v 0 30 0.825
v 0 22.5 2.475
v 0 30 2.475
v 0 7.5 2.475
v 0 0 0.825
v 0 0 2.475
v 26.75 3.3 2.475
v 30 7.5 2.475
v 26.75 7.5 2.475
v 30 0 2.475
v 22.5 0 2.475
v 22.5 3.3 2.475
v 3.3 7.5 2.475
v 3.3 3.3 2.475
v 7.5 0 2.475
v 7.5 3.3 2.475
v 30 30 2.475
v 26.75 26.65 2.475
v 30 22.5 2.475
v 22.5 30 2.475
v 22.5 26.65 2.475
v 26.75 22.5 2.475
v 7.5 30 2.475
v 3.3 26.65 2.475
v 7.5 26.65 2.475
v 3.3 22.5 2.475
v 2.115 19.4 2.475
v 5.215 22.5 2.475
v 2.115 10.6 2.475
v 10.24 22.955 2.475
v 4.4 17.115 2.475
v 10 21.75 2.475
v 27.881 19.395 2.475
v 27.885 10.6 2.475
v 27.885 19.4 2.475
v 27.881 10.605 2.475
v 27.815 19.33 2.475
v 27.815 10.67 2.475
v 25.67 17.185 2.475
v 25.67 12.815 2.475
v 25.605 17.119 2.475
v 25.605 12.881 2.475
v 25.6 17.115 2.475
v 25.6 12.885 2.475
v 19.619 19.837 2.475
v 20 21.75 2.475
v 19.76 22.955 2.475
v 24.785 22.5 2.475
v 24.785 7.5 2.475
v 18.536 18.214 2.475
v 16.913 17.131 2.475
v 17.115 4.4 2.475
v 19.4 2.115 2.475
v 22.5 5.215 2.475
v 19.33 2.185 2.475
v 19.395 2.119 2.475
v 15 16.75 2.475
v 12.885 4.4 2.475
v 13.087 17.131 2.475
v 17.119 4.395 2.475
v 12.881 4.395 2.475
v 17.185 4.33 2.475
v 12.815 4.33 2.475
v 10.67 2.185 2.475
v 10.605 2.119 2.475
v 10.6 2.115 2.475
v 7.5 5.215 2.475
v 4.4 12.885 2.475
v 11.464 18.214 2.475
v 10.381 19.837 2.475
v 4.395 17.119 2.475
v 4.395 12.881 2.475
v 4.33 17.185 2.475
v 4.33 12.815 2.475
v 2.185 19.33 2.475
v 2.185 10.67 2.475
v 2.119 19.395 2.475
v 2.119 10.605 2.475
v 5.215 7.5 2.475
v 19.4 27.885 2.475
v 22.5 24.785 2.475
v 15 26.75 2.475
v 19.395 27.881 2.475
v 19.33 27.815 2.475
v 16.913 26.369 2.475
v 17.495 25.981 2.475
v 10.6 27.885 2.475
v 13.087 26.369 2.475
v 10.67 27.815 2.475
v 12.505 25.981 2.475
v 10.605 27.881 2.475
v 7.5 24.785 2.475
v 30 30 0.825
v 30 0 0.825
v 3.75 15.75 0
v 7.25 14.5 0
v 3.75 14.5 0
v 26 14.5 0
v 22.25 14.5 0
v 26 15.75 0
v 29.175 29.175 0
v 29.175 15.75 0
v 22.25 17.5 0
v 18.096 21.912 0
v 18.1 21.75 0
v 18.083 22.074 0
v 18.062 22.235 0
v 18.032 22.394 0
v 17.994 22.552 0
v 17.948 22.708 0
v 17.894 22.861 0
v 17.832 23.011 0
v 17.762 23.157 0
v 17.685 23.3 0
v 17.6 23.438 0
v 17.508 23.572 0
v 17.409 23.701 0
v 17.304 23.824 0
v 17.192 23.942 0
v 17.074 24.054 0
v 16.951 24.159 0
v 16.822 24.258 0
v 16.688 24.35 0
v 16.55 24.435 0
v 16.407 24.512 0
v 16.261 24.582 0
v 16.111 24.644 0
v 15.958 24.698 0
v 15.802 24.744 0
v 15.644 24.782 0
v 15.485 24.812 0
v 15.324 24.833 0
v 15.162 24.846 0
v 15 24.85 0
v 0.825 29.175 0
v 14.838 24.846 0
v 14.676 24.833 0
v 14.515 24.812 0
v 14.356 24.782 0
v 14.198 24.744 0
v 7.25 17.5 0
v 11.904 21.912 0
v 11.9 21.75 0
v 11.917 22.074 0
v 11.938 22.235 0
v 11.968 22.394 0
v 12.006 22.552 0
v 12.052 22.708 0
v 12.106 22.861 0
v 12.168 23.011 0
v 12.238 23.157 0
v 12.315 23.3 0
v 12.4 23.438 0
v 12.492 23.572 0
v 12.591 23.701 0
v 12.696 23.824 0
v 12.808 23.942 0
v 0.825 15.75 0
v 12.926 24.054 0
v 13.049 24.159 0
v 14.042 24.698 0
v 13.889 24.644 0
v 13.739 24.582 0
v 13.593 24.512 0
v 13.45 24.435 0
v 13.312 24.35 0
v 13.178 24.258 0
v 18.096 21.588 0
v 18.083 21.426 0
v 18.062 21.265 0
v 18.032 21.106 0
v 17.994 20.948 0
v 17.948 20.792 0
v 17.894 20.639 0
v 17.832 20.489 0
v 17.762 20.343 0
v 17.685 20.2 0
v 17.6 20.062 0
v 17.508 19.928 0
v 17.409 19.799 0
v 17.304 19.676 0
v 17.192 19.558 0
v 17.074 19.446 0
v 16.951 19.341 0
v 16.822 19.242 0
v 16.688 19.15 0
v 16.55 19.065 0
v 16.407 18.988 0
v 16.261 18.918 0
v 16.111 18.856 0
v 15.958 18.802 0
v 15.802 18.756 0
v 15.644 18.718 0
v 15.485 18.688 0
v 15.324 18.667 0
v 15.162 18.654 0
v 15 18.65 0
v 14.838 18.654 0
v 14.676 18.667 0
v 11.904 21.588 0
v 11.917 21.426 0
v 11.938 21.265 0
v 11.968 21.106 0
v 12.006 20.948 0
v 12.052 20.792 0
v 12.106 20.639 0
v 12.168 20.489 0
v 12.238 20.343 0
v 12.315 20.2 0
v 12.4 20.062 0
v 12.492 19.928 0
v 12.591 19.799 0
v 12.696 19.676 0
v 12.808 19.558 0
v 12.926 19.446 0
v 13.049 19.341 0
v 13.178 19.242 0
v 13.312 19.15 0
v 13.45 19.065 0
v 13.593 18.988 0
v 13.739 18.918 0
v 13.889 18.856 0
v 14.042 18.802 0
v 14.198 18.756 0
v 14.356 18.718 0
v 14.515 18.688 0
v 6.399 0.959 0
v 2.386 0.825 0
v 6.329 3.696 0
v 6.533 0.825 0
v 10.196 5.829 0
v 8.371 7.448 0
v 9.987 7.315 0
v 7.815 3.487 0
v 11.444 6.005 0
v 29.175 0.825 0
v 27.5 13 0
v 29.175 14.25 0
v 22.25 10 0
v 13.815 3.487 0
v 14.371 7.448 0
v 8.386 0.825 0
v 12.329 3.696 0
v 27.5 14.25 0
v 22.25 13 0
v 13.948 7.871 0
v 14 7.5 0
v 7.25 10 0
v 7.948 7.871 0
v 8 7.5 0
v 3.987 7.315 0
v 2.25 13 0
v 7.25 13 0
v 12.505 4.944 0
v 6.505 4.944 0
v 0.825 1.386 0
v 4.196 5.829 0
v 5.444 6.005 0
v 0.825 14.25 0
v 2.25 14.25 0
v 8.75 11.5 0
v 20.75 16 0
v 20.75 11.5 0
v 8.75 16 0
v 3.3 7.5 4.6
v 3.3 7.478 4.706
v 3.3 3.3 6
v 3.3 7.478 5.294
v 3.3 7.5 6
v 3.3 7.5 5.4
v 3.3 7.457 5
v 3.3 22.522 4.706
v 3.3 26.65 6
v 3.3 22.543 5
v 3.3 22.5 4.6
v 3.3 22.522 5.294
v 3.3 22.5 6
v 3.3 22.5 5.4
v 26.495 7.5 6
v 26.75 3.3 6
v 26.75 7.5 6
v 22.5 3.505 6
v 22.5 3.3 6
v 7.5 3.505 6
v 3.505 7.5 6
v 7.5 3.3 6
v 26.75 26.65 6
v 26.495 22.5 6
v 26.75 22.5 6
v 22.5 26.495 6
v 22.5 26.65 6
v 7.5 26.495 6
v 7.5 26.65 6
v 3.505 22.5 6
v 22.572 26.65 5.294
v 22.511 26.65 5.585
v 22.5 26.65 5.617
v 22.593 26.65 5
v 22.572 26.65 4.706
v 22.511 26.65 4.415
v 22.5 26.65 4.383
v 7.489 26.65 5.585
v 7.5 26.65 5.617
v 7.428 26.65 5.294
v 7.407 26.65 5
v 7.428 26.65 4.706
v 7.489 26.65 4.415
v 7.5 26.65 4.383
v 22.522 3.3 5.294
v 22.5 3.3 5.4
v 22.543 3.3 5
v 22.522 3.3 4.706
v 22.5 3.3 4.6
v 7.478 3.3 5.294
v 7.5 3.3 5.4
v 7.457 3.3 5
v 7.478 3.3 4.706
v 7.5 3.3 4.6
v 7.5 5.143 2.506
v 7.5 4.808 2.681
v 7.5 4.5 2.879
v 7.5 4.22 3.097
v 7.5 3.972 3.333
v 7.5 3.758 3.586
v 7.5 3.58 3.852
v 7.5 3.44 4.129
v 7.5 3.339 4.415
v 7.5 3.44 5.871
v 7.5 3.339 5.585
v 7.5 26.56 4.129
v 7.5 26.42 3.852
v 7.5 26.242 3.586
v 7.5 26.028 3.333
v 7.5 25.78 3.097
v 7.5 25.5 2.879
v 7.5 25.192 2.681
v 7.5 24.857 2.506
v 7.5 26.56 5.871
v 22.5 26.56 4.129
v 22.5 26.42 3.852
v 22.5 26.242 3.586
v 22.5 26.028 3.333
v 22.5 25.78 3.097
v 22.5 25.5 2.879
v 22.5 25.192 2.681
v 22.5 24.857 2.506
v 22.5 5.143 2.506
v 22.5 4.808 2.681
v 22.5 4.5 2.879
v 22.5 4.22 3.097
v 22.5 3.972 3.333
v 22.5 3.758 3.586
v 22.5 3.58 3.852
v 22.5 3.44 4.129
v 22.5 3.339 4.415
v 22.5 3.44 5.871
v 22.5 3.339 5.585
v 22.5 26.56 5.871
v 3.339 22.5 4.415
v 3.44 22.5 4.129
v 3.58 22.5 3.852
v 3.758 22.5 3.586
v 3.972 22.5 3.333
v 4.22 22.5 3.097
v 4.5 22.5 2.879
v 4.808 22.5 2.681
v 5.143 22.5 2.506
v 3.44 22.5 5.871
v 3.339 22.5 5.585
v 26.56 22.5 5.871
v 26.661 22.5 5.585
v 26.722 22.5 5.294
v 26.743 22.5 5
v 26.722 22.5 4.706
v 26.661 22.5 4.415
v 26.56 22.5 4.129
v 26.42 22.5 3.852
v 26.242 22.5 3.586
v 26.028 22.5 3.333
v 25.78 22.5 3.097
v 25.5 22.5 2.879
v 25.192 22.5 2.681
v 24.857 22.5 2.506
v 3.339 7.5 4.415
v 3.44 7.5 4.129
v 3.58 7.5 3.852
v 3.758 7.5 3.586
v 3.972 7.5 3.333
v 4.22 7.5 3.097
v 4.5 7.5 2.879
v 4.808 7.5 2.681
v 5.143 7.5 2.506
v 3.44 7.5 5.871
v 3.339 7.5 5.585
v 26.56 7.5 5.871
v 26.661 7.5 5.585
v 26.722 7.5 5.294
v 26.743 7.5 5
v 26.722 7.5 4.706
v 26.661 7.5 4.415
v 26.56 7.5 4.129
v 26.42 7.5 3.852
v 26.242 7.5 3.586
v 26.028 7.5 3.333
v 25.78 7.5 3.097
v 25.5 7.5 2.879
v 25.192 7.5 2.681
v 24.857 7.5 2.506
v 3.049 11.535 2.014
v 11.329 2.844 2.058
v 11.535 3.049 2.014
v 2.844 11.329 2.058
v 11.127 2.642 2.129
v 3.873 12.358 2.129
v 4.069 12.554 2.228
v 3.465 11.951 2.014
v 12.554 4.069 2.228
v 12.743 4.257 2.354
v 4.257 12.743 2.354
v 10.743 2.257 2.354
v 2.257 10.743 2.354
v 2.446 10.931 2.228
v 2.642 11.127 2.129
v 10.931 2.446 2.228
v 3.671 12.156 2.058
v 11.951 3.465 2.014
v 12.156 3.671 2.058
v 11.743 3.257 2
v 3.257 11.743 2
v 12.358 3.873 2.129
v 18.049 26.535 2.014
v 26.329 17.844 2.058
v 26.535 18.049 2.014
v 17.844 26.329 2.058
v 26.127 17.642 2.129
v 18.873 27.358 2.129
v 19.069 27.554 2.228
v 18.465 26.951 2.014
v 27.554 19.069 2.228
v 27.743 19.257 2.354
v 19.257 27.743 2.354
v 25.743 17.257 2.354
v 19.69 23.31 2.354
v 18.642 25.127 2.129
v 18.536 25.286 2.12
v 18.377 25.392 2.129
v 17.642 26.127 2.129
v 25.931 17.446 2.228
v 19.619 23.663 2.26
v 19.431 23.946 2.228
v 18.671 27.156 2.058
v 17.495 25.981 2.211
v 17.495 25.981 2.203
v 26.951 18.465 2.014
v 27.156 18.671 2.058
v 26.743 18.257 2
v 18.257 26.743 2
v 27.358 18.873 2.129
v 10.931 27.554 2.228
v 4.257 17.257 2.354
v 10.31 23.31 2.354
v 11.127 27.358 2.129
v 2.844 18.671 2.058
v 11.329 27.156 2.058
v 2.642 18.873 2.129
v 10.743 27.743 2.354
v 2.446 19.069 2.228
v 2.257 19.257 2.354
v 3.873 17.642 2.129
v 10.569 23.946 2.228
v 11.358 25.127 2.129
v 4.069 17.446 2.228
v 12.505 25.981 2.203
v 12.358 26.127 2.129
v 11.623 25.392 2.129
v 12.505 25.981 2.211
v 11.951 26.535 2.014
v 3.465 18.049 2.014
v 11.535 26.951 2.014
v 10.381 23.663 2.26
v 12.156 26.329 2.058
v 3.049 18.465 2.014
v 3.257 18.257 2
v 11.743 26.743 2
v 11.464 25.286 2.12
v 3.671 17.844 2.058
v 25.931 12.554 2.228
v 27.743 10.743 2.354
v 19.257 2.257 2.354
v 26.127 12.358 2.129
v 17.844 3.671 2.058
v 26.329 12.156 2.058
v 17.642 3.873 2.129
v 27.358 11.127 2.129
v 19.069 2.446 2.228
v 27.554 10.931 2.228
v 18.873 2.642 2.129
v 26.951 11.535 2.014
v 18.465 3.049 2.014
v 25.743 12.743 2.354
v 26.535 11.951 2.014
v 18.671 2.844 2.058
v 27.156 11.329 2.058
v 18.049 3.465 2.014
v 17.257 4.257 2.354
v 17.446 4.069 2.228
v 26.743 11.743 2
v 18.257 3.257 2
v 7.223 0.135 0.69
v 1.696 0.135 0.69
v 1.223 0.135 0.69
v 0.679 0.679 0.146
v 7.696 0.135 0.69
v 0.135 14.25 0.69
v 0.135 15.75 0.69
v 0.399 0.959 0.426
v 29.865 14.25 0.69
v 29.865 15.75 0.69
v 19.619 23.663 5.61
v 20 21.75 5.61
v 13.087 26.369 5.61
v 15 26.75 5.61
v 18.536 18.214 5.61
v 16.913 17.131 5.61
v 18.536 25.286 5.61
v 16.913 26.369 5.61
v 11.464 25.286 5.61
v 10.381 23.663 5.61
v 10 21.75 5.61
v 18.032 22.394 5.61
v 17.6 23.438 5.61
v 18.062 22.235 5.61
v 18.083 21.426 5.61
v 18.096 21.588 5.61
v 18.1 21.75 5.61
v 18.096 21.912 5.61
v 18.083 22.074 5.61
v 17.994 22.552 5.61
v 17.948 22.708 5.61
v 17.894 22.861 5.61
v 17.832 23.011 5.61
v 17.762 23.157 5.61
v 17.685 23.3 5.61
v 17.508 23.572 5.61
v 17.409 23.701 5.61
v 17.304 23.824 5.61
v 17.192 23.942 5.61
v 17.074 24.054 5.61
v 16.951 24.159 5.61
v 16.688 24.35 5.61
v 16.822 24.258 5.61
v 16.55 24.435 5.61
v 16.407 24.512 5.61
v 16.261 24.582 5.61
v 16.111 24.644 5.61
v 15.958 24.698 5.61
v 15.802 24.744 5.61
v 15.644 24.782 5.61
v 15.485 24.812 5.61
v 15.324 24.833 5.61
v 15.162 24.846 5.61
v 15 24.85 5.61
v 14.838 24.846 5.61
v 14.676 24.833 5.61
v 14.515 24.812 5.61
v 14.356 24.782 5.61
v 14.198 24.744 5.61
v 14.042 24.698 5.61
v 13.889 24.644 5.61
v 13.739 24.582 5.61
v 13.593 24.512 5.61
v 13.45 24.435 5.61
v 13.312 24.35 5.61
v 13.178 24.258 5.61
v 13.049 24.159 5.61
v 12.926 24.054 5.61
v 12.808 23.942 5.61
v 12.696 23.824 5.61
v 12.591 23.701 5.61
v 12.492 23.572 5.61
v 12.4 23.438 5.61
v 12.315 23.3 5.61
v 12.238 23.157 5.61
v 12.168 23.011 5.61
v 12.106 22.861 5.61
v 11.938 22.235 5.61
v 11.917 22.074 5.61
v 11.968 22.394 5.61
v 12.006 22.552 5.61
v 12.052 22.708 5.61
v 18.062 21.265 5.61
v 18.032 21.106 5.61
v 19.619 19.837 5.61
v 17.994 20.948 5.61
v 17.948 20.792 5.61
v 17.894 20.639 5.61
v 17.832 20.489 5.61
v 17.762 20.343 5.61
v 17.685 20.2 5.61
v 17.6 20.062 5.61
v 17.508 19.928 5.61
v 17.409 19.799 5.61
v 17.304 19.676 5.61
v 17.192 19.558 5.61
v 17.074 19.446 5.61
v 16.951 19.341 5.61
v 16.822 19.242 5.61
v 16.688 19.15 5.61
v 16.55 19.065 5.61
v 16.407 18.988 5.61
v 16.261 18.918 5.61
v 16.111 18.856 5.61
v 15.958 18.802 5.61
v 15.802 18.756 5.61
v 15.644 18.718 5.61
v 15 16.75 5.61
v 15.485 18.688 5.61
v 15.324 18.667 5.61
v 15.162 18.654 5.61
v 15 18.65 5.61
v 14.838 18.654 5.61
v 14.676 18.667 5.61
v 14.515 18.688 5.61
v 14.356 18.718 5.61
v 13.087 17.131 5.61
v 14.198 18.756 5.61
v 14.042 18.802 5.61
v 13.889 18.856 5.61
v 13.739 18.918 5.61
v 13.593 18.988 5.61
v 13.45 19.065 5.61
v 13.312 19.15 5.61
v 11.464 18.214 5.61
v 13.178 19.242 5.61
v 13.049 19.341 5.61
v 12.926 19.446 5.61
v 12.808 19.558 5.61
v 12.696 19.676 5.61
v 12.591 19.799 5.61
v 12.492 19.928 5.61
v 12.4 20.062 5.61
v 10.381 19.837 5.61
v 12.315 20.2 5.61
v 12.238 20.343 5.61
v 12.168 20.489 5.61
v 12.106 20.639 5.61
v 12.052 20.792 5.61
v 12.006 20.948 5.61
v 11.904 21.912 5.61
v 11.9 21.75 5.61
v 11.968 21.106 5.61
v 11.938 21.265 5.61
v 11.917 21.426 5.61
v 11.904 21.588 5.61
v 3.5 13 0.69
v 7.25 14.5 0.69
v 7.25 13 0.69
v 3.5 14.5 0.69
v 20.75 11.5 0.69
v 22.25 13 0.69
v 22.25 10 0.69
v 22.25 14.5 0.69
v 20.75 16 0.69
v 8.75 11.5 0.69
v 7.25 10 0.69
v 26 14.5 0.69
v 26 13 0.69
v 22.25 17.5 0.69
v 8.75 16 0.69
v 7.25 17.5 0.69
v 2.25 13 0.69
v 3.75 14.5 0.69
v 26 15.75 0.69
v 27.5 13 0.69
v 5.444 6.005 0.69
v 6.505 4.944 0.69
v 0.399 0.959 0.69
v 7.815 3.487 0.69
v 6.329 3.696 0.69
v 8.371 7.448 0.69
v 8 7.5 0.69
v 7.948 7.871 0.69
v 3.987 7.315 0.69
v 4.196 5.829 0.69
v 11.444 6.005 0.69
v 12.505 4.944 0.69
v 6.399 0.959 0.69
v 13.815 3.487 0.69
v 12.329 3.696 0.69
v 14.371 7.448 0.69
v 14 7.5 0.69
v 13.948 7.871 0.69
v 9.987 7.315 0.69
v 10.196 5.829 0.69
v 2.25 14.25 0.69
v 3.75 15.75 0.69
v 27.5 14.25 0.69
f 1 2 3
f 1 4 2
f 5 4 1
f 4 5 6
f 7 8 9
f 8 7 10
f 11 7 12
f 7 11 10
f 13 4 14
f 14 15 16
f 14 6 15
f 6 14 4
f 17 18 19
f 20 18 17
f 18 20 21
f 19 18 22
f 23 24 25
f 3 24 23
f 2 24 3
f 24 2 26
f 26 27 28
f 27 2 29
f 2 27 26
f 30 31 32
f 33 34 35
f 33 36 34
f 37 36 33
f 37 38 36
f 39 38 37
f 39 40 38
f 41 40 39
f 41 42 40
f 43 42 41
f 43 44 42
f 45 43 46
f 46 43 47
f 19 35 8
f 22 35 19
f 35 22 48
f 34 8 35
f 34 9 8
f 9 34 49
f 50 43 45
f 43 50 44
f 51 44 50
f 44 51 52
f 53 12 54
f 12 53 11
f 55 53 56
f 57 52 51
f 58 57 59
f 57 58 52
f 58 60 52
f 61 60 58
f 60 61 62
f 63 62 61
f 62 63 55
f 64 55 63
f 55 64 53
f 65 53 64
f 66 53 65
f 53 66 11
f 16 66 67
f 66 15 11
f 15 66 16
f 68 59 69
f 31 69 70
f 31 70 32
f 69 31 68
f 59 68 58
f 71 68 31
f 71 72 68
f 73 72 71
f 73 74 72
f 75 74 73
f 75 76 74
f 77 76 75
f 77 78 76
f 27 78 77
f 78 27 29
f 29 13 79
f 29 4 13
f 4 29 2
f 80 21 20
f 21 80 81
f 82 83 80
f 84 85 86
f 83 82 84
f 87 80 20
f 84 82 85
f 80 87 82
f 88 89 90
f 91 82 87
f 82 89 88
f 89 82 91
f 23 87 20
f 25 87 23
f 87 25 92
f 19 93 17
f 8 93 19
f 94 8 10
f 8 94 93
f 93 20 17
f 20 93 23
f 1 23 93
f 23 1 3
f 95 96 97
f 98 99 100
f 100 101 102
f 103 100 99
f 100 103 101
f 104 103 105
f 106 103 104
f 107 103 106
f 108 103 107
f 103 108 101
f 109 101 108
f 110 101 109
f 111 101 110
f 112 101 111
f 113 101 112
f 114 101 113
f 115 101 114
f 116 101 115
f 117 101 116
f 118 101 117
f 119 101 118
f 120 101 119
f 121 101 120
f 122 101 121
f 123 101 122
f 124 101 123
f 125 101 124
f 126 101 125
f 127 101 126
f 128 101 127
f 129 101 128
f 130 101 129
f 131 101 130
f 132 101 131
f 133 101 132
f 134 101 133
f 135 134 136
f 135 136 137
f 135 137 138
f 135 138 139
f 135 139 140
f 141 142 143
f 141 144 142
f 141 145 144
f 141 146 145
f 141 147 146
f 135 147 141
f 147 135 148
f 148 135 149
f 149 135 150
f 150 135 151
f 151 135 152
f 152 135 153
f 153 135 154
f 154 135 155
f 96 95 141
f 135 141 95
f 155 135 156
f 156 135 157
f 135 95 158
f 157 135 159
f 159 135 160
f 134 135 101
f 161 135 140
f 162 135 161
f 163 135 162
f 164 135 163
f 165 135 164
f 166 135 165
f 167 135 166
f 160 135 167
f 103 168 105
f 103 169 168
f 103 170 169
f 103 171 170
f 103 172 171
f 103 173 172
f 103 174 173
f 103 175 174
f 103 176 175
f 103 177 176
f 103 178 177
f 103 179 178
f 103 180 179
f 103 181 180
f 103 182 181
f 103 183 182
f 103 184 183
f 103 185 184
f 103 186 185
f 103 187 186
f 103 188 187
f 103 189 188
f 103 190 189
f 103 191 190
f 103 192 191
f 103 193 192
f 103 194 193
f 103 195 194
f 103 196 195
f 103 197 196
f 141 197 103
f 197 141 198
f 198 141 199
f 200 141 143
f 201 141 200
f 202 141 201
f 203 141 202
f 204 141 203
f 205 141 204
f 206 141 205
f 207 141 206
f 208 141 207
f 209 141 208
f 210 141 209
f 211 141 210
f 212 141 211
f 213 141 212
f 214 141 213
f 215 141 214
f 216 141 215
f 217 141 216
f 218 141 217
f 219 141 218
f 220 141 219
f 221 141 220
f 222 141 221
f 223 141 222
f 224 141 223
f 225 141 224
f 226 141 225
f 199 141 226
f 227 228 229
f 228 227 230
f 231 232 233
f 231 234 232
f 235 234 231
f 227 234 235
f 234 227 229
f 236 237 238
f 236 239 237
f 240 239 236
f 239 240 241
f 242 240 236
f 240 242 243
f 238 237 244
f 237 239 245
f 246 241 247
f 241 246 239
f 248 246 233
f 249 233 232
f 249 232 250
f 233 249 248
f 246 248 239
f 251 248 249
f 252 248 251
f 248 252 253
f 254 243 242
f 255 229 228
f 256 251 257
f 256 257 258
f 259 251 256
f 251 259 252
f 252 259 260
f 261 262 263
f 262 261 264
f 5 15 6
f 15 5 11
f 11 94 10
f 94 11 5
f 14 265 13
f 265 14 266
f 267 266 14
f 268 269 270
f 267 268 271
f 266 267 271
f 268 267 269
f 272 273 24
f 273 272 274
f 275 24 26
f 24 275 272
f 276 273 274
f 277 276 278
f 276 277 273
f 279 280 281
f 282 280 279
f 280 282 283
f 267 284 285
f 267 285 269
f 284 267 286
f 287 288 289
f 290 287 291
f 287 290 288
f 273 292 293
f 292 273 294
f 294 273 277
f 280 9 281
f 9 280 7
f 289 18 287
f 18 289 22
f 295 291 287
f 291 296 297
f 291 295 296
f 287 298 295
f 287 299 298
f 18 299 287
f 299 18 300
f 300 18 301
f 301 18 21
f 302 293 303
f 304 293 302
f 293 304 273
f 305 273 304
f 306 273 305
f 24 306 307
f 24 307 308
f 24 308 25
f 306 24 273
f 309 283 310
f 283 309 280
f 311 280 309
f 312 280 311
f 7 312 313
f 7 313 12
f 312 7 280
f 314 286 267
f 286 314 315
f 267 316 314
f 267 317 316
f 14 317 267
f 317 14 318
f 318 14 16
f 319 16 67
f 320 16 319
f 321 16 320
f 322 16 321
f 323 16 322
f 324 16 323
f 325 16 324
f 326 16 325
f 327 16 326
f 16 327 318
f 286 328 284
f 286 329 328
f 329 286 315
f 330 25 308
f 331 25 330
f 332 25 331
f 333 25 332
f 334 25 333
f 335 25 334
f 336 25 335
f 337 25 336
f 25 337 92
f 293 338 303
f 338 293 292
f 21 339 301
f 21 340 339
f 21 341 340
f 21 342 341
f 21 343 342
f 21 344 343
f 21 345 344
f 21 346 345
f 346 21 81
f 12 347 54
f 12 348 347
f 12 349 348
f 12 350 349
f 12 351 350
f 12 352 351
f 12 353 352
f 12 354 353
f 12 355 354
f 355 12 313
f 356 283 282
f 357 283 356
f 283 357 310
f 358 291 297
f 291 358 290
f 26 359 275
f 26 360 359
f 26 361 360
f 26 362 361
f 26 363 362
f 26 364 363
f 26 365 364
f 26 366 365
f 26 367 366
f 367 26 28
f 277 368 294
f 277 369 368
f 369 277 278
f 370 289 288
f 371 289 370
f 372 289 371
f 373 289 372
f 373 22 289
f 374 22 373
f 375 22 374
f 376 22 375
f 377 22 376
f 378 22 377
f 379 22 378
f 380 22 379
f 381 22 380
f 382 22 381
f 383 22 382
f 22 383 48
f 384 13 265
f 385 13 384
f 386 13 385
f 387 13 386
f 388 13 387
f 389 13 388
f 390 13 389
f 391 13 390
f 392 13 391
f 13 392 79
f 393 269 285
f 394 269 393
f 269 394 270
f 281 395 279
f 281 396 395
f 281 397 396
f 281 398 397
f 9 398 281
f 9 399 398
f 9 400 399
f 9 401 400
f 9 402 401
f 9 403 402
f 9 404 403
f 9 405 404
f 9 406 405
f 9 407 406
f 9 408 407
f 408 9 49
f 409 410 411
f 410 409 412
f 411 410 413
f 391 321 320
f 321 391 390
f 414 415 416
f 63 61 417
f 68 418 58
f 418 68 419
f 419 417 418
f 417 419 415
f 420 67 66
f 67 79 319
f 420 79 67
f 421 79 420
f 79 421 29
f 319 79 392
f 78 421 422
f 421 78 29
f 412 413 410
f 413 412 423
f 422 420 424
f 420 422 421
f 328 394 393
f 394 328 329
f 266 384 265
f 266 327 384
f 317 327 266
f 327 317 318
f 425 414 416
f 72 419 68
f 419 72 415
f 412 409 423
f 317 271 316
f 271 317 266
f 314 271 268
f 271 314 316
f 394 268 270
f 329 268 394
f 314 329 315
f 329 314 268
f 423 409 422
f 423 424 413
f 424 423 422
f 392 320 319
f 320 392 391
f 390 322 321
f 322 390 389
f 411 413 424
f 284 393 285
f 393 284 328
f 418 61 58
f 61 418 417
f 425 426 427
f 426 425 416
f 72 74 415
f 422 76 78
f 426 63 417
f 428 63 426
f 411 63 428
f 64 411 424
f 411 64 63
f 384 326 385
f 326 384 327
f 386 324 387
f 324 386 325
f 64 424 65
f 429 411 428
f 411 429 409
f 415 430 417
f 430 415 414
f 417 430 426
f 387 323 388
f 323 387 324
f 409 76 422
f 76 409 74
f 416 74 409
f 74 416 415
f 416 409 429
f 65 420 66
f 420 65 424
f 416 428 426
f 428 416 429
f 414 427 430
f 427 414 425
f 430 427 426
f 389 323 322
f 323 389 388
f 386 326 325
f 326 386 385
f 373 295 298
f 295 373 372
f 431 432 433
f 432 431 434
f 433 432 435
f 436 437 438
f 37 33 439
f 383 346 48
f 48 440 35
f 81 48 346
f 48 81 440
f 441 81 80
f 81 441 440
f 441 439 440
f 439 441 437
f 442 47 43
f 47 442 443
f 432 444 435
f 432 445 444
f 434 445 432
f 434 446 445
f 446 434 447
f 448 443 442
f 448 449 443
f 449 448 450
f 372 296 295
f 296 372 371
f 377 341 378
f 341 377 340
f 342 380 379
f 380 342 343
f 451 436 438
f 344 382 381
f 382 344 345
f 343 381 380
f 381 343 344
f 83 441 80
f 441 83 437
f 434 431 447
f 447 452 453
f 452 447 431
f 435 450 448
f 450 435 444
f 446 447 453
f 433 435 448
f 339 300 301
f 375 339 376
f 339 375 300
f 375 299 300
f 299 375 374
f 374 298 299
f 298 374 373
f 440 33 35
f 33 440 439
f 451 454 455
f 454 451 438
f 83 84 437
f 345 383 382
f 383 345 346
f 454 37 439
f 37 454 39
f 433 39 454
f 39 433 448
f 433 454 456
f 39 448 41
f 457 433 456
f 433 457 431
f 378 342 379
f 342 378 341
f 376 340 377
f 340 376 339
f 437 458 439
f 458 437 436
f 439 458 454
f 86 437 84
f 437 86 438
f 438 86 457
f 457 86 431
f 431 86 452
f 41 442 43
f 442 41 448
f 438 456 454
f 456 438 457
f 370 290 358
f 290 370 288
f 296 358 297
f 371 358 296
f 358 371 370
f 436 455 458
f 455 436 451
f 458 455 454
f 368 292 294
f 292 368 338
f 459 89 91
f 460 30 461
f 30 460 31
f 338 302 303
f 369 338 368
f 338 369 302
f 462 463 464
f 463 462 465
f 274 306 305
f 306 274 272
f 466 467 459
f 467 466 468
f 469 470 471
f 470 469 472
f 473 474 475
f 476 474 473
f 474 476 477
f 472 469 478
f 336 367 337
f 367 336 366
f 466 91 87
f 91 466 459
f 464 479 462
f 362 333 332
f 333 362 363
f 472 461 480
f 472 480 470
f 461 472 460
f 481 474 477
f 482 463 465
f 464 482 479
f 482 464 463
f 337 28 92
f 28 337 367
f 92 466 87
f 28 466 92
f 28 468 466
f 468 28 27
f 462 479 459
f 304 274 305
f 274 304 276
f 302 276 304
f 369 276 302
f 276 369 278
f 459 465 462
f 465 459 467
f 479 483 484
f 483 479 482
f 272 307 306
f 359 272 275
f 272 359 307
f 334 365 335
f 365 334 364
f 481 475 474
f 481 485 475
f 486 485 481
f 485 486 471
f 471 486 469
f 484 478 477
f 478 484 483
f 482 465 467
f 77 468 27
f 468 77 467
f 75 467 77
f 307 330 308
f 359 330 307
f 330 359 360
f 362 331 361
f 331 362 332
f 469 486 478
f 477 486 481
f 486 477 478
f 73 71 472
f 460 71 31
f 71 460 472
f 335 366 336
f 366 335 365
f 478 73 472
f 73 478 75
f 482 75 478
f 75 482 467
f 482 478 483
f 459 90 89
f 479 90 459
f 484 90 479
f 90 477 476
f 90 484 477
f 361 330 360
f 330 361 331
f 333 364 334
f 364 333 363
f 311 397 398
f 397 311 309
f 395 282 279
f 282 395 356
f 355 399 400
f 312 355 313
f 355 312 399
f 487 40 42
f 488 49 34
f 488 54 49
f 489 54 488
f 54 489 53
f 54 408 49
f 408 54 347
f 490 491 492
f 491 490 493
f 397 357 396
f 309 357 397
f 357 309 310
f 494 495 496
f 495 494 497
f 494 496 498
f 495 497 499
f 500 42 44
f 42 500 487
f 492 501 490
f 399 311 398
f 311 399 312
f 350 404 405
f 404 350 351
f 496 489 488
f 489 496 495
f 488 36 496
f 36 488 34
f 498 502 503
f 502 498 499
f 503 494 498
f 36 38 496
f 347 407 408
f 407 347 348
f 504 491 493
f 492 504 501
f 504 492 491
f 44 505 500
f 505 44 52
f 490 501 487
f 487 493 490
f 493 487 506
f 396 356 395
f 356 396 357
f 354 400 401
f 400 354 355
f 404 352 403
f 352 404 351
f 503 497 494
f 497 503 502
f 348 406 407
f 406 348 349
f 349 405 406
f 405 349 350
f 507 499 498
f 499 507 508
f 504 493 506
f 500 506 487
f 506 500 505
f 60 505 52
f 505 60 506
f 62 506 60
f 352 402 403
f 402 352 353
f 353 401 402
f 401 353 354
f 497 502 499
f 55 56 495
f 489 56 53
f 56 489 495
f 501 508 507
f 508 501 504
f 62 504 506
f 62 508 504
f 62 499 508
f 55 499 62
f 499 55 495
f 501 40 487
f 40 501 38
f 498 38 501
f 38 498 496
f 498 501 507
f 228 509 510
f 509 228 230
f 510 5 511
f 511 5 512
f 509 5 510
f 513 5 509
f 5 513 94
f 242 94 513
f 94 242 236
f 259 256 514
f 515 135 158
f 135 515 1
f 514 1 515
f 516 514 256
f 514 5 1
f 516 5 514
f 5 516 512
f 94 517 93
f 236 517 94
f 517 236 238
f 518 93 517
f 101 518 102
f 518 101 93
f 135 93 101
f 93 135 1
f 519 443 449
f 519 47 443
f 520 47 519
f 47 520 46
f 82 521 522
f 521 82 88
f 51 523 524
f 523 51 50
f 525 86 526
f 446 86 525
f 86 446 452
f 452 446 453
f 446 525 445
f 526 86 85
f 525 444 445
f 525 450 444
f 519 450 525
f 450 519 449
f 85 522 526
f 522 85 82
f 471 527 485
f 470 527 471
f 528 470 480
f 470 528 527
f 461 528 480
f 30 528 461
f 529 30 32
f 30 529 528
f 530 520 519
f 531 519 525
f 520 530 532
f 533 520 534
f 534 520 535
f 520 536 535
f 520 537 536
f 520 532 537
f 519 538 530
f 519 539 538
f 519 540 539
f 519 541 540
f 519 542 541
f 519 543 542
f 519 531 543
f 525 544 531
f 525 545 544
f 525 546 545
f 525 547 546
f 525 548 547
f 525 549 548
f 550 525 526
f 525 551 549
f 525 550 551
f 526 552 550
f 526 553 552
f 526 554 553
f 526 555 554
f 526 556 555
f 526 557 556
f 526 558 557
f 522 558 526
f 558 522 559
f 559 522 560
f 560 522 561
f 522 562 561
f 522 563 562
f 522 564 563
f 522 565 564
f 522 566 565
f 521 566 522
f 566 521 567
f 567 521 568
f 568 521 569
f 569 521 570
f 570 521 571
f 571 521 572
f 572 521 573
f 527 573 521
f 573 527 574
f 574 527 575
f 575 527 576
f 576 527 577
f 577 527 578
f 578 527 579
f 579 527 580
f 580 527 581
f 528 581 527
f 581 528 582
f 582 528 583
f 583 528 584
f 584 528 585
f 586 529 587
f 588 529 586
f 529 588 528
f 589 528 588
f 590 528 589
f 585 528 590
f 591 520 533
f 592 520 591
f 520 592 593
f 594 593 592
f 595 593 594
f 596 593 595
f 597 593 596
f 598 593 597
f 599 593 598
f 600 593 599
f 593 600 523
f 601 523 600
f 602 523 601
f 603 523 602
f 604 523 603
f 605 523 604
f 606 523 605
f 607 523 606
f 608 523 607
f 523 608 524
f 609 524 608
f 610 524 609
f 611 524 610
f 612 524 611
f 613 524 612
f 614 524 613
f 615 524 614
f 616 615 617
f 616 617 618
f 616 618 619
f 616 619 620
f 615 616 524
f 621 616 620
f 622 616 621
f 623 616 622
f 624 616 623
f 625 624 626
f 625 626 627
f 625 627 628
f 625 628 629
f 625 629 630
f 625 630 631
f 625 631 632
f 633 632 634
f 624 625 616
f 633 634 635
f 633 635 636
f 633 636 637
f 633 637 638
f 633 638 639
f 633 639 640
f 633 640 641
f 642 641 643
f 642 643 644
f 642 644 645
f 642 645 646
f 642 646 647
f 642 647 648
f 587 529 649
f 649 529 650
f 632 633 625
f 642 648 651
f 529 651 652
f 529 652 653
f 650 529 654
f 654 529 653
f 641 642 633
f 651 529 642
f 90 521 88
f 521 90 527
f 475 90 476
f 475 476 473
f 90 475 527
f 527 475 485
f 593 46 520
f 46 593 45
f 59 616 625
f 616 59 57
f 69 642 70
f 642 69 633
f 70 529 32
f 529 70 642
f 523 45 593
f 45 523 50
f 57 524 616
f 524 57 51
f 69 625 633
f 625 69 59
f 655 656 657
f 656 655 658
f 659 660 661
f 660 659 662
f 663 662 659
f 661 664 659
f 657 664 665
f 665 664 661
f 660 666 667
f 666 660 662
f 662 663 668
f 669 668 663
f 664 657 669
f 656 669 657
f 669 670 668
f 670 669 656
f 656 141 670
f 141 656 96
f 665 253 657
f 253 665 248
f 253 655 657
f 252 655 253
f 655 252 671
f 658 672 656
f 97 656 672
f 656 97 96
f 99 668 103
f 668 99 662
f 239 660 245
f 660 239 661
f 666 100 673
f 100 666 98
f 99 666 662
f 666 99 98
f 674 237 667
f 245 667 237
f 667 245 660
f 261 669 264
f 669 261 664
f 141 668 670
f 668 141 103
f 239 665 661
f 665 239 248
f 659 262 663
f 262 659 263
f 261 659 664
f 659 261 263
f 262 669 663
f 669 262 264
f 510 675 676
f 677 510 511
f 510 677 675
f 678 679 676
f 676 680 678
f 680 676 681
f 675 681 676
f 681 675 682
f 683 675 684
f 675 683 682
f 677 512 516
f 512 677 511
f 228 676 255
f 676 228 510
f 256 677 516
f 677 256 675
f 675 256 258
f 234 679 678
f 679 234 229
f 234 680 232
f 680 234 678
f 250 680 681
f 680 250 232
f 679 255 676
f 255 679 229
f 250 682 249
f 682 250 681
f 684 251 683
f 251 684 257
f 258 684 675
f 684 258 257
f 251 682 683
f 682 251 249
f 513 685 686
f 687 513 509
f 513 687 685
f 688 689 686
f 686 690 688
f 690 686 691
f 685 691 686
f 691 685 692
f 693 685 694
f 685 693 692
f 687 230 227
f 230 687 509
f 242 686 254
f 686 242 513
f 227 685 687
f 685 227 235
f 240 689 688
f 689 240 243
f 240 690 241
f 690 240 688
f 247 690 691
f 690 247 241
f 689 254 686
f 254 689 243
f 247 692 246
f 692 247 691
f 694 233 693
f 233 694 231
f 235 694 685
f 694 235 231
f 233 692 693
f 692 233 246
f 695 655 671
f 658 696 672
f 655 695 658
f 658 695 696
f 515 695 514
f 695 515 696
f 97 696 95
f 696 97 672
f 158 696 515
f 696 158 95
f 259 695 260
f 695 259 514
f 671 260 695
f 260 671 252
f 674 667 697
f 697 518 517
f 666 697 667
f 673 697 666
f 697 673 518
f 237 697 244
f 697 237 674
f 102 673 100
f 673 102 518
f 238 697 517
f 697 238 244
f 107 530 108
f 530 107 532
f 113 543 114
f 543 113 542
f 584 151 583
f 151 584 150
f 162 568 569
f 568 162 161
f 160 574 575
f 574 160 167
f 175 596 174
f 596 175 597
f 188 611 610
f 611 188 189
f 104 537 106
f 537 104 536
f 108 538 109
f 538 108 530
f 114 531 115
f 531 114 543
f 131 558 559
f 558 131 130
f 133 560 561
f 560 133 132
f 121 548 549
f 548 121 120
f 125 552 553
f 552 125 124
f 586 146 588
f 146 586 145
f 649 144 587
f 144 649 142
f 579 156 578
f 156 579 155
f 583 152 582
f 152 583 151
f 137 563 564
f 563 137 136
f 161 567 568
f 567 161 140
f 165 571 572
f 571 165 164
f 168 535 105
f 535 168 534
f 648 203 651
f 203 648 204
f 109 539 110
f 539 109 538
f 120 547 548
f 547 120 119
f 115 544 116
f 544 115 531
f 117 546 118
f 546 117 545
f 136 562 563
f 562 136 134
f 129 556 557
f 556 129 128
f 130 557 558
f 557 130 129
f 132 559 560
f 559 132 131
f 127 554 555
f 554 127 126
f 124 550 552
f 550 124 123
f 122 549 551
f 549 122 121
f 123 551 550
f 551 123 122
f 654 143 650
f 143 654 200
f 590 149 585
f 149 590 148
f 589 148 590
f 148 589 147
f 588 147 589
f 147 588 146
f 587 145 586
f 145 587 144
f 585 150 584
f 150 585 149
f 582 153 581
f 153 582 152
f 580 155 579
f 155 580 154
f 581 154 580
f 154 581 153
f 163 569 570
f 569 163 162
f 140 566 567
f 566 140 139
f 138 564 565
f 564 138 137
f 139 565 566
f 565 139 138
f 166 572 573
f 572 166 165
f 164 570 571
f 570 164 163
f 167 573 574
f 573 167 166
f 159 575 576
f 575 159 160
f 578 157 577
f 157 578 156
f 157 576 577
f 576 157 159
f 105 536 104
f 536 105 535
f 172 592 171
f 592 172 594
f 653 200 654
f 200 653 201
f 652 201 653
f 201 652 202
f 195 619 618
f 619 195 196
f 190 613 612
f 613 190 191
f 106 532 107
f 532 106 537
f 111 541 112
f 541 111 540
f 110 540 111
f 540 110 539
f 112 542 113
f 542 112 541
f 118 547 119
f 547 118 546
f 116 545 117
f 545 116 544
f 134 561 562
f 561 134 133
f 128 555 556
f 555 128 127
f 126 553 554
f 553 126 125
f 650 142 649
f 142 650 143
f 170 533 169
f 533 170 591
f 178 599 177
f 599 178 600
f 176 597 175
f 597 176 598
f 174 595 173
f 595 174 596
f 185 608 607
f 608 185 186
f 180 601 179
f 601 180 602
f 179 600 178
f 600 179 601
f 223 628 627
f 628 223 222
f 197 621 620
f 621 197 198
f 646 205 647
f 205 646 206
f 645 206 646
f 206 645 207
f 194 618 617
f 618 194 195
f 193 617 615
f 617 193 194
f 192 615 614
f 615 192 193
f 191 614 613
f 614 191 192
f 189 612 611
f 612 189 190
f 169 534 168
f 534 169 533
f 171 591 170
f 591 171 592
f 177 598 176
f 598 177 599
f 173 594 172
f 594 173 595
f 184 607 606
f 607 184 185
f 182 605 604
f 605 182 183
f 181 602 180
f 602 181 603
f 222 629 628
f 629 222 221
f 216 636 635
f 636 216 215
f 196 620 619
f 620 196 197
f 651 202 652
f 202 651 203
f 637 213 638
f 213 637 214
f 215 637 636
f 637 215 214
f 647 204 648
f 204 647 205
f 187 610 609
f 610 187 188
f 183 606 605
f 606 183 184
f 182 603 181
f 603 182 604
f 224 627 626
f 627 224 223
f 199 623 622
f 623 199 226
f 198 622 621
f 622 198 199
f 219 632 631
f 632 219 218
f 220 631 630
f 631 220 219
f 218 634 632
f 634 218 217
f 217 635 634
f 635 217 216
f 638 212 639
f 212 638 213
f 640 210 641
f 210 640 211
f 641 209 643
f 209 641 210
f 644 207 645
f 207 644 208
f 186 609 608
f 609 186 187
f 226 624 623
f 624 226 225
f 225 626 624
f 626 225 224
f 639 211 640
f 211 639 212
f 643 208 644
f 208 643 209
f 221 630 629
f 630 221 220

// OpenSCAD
// file: settings.scad
cube_width=30;
cube_height=16;
cube_thickness=3.3;

cap_width=30;
cap_height=6;
cap_thickness=3.3;

glyph_depth=0.7;
glyph_thickness=1.5;

photo_resitor_hole_r = 2.4;
spring_contact_hole_r = 3.125;
// file: sym_arrow.scad
module arrow(thickness, length, size, height)
{
    if (length > 0)
    {
        translate([thickness,-thickness/2,0])cube([length-thickness, thickness, height]);
        rotate([0,0,37])translate([0,-3*thickness/4])cube([size, thickness, height]);
        rotate([0,0,-37])translate([0,-thickness/4])cube([size, thickness, height]);
    }
    else
    {
        translate([0,-thickness/2, 0])cube([-length-thickness, thickness, height]);
        translate([-length,0,0]) mirror([1,0,0]) rotate([0,0,30])translate([0,-3*thickness/4,0])cube([size, thickness, height]);
        translate([-length,0,0]) mirror([1,0,0])rotate([0,0,-30])translate([0,-thickness/4])cube([size, thickness, height]);
    }
}

arrow(0.7, -20, 4.5, 1);
// file: sym_resistor.scad
module resistor(length, width, thickness, height)
{
    translate([0,-thickness/2,0])cube([length/2-width, thickness, height]);
    translate([length/2+width,-thickness/2,0])cube([length/2-width, thickness, height]);
    
    translate([length/2-width,-width/2, 0])cube([thickness, width, height]);
    translate([length/2+width-thickness,-width/2,0])cube([thickness, width, height]);
    translate([length/2-width,-width/2, 0])cube([2*width, thickness, height]);
    translate([length/2-width, width/2-thickness, 0])cube([2*width, thickness, height]);
}

resistor(30, 8, 1, 1);
// file: cap_1x1.scad
include <settings.scad>

module cap_1x1(width, height, thickness, holes_mask)
{
    width1=width-thickness;
    shrink_teeth = 0.02;
    st = shrink_teeth;
    difference()
    {
        union()
        {
            cube([width, width, thickness*3/4]);
            translate([thickness+st,thickness+st,0])cube([width-2*(thickness+st-0.025), width-2*(thickness+st+0.025), height]);
        }
        union()
        {
            //translate([width/2,width/2,0])rotate([0,0,45])translate([-width1/2,-width1/2,thickness*3/4]) cube([width1,width1,height]);
            translate([width/4,0,thickness*3/4])cube([width/2,width,height]);
            translate([0,width/4,thickness*3/4])cube([width,width/2,height]);
            translate([width/4,width/4,width/6])rotate([90,0,45])translate([0,0,-height])cylinder(r=height/2, h=2*height, $fn=64);
            translate([3*width/4,3*width/4,width/6])rotate([90,0,45])translate([0,0,-height])cylinder(r=height/2, h=height*2, $fn=64);
            translate([width/4,3*width/4,width/6])rotate([90,0,-45])translate([0,0,-height])cylinder(r=height/2, h=2*height, $fn=64);
            translate([3*width/4,width/4,width/6])rotate([90,0,-45])translate([0,0,-height])cylinder(r=height/2, h=height*2, $fn=64);
            //corners
            translate([0,0.25*thickness,0])rotate([45,0,0]) translate([-0.5*width, -width, -0.5*height]) cube([2*width, width, 2*height]);
            translate([0.25*thickness,0,0]) rotate([0,-45,0]) translate([-width, -0.5*width, -0.5*height]) cube([width, 2*width, 2*height]);
            translate([width-0.25*thickness,0,0]) rotate([0,45,0]) translate([0, 0, -0.5*height]) cube([width, 2*width, 2*height]);
            translate([0,width-0.25*thickness,0]) rotate([-45,0,0]) translate([-0.5*width, 0, -0.5*height]) cube([2*width, width, 2*height]);
            
            if (holes_mask >= 8)
            {
                translate([width/2, thickness-1.5, -0.5]) cylinder(r=1.15, h=height*1.5, $fn=80);
            }
            if ((holes_mask%8) >= 4)
            {
                translate([width/2, width-thickness+1.5, -0.5]) cylinder(r=1.15, h=height*1.5, $fn=80);
            }
            if ((holes_mask%4)>= 2)
            {
                translate([thickness-1.5, width/2, -0.5]) cylinder(r=1.15, h=height*1.5, $fn=80);
            }
            if (holes_mask%2 >= 1)
            {
                translate([width-thickness+1.5, width/2, -0.5]) cylinder(r=1.15, h=height*1.5, $fn=80);
            }
        }
    }
}

cap_1x1(cap_width, cap_height, cap_thickness, 9);
//ring(10,1,1);
//arrow(1, 20, 3, 1);
//transistor_npn(30, 1, 1);
// main file
use <cap_1x1.scad>
use <sym_resistor.scad>
use <sym_arrow.scad>
include <settings.scad>

module cap_1x1_resistor_photo(width, height, thickness)
{
    hole_disp = 8.7*width/12;
    difference()
    {
        union()
        {
            cap_1x1(width, height, thickness, 0); //3
            translate([width/2,hole_disp,0]) cylinder(r=5, h=1.7*thickness);
        }
        
        //horizontal left wire    
        translate([0,width/2-glyph_thickness/2,-0.01])cube([3*width/24, glyph_thickness, glyph_depth]);
    
        // vertical left wire    
        translate([3*width/24-glyph_thickness,11*width/24-glyph_thickness/2,-0.01]) cube([glyph_thickness,1*width/24+glyph_thickness,glyph_depth]);
        
        //resistor
        translate([1.4*width/12, 11*width/24,-0.01])resistor(9*width/12, width/4, glyph_thickness, glyph_depth);
        
        //vertical right wire
        translate([10.4*width/12,11*width/24-glyph_thickness/2,-0.01]) cube([glyph_thickness,1*width/24+glyph_thickness,glyph_depth]);
        
        //horizontal right wire    
        translate([10.4*width/12,width/2-glyph_thickness/2,-0.01])cube([2.5*width/12, glyph_thickness, glyph_depth]);
        
        //left arrow
        translate([width/3-2,width/4,-0.01])rotate([0,0,-135]) arrow(glyph_thickness, width/3, 4, glyph_depth);
        
        //right arrow
        translate([2.8*width/6,width/4,-0.01])rotate([0,0,-135]) arrow(glyph_thickness, width/3, 4, glyph_depth);
    
        //photoresistor light hole    
        translate([width/2, hole_disp, -0.1])cylinder(r=3.1, h=2*thickness, $fn=120);
    }
    
    
}

cap_1x1_resistor_photo(cap_width, cap_height, cap_thickness);
